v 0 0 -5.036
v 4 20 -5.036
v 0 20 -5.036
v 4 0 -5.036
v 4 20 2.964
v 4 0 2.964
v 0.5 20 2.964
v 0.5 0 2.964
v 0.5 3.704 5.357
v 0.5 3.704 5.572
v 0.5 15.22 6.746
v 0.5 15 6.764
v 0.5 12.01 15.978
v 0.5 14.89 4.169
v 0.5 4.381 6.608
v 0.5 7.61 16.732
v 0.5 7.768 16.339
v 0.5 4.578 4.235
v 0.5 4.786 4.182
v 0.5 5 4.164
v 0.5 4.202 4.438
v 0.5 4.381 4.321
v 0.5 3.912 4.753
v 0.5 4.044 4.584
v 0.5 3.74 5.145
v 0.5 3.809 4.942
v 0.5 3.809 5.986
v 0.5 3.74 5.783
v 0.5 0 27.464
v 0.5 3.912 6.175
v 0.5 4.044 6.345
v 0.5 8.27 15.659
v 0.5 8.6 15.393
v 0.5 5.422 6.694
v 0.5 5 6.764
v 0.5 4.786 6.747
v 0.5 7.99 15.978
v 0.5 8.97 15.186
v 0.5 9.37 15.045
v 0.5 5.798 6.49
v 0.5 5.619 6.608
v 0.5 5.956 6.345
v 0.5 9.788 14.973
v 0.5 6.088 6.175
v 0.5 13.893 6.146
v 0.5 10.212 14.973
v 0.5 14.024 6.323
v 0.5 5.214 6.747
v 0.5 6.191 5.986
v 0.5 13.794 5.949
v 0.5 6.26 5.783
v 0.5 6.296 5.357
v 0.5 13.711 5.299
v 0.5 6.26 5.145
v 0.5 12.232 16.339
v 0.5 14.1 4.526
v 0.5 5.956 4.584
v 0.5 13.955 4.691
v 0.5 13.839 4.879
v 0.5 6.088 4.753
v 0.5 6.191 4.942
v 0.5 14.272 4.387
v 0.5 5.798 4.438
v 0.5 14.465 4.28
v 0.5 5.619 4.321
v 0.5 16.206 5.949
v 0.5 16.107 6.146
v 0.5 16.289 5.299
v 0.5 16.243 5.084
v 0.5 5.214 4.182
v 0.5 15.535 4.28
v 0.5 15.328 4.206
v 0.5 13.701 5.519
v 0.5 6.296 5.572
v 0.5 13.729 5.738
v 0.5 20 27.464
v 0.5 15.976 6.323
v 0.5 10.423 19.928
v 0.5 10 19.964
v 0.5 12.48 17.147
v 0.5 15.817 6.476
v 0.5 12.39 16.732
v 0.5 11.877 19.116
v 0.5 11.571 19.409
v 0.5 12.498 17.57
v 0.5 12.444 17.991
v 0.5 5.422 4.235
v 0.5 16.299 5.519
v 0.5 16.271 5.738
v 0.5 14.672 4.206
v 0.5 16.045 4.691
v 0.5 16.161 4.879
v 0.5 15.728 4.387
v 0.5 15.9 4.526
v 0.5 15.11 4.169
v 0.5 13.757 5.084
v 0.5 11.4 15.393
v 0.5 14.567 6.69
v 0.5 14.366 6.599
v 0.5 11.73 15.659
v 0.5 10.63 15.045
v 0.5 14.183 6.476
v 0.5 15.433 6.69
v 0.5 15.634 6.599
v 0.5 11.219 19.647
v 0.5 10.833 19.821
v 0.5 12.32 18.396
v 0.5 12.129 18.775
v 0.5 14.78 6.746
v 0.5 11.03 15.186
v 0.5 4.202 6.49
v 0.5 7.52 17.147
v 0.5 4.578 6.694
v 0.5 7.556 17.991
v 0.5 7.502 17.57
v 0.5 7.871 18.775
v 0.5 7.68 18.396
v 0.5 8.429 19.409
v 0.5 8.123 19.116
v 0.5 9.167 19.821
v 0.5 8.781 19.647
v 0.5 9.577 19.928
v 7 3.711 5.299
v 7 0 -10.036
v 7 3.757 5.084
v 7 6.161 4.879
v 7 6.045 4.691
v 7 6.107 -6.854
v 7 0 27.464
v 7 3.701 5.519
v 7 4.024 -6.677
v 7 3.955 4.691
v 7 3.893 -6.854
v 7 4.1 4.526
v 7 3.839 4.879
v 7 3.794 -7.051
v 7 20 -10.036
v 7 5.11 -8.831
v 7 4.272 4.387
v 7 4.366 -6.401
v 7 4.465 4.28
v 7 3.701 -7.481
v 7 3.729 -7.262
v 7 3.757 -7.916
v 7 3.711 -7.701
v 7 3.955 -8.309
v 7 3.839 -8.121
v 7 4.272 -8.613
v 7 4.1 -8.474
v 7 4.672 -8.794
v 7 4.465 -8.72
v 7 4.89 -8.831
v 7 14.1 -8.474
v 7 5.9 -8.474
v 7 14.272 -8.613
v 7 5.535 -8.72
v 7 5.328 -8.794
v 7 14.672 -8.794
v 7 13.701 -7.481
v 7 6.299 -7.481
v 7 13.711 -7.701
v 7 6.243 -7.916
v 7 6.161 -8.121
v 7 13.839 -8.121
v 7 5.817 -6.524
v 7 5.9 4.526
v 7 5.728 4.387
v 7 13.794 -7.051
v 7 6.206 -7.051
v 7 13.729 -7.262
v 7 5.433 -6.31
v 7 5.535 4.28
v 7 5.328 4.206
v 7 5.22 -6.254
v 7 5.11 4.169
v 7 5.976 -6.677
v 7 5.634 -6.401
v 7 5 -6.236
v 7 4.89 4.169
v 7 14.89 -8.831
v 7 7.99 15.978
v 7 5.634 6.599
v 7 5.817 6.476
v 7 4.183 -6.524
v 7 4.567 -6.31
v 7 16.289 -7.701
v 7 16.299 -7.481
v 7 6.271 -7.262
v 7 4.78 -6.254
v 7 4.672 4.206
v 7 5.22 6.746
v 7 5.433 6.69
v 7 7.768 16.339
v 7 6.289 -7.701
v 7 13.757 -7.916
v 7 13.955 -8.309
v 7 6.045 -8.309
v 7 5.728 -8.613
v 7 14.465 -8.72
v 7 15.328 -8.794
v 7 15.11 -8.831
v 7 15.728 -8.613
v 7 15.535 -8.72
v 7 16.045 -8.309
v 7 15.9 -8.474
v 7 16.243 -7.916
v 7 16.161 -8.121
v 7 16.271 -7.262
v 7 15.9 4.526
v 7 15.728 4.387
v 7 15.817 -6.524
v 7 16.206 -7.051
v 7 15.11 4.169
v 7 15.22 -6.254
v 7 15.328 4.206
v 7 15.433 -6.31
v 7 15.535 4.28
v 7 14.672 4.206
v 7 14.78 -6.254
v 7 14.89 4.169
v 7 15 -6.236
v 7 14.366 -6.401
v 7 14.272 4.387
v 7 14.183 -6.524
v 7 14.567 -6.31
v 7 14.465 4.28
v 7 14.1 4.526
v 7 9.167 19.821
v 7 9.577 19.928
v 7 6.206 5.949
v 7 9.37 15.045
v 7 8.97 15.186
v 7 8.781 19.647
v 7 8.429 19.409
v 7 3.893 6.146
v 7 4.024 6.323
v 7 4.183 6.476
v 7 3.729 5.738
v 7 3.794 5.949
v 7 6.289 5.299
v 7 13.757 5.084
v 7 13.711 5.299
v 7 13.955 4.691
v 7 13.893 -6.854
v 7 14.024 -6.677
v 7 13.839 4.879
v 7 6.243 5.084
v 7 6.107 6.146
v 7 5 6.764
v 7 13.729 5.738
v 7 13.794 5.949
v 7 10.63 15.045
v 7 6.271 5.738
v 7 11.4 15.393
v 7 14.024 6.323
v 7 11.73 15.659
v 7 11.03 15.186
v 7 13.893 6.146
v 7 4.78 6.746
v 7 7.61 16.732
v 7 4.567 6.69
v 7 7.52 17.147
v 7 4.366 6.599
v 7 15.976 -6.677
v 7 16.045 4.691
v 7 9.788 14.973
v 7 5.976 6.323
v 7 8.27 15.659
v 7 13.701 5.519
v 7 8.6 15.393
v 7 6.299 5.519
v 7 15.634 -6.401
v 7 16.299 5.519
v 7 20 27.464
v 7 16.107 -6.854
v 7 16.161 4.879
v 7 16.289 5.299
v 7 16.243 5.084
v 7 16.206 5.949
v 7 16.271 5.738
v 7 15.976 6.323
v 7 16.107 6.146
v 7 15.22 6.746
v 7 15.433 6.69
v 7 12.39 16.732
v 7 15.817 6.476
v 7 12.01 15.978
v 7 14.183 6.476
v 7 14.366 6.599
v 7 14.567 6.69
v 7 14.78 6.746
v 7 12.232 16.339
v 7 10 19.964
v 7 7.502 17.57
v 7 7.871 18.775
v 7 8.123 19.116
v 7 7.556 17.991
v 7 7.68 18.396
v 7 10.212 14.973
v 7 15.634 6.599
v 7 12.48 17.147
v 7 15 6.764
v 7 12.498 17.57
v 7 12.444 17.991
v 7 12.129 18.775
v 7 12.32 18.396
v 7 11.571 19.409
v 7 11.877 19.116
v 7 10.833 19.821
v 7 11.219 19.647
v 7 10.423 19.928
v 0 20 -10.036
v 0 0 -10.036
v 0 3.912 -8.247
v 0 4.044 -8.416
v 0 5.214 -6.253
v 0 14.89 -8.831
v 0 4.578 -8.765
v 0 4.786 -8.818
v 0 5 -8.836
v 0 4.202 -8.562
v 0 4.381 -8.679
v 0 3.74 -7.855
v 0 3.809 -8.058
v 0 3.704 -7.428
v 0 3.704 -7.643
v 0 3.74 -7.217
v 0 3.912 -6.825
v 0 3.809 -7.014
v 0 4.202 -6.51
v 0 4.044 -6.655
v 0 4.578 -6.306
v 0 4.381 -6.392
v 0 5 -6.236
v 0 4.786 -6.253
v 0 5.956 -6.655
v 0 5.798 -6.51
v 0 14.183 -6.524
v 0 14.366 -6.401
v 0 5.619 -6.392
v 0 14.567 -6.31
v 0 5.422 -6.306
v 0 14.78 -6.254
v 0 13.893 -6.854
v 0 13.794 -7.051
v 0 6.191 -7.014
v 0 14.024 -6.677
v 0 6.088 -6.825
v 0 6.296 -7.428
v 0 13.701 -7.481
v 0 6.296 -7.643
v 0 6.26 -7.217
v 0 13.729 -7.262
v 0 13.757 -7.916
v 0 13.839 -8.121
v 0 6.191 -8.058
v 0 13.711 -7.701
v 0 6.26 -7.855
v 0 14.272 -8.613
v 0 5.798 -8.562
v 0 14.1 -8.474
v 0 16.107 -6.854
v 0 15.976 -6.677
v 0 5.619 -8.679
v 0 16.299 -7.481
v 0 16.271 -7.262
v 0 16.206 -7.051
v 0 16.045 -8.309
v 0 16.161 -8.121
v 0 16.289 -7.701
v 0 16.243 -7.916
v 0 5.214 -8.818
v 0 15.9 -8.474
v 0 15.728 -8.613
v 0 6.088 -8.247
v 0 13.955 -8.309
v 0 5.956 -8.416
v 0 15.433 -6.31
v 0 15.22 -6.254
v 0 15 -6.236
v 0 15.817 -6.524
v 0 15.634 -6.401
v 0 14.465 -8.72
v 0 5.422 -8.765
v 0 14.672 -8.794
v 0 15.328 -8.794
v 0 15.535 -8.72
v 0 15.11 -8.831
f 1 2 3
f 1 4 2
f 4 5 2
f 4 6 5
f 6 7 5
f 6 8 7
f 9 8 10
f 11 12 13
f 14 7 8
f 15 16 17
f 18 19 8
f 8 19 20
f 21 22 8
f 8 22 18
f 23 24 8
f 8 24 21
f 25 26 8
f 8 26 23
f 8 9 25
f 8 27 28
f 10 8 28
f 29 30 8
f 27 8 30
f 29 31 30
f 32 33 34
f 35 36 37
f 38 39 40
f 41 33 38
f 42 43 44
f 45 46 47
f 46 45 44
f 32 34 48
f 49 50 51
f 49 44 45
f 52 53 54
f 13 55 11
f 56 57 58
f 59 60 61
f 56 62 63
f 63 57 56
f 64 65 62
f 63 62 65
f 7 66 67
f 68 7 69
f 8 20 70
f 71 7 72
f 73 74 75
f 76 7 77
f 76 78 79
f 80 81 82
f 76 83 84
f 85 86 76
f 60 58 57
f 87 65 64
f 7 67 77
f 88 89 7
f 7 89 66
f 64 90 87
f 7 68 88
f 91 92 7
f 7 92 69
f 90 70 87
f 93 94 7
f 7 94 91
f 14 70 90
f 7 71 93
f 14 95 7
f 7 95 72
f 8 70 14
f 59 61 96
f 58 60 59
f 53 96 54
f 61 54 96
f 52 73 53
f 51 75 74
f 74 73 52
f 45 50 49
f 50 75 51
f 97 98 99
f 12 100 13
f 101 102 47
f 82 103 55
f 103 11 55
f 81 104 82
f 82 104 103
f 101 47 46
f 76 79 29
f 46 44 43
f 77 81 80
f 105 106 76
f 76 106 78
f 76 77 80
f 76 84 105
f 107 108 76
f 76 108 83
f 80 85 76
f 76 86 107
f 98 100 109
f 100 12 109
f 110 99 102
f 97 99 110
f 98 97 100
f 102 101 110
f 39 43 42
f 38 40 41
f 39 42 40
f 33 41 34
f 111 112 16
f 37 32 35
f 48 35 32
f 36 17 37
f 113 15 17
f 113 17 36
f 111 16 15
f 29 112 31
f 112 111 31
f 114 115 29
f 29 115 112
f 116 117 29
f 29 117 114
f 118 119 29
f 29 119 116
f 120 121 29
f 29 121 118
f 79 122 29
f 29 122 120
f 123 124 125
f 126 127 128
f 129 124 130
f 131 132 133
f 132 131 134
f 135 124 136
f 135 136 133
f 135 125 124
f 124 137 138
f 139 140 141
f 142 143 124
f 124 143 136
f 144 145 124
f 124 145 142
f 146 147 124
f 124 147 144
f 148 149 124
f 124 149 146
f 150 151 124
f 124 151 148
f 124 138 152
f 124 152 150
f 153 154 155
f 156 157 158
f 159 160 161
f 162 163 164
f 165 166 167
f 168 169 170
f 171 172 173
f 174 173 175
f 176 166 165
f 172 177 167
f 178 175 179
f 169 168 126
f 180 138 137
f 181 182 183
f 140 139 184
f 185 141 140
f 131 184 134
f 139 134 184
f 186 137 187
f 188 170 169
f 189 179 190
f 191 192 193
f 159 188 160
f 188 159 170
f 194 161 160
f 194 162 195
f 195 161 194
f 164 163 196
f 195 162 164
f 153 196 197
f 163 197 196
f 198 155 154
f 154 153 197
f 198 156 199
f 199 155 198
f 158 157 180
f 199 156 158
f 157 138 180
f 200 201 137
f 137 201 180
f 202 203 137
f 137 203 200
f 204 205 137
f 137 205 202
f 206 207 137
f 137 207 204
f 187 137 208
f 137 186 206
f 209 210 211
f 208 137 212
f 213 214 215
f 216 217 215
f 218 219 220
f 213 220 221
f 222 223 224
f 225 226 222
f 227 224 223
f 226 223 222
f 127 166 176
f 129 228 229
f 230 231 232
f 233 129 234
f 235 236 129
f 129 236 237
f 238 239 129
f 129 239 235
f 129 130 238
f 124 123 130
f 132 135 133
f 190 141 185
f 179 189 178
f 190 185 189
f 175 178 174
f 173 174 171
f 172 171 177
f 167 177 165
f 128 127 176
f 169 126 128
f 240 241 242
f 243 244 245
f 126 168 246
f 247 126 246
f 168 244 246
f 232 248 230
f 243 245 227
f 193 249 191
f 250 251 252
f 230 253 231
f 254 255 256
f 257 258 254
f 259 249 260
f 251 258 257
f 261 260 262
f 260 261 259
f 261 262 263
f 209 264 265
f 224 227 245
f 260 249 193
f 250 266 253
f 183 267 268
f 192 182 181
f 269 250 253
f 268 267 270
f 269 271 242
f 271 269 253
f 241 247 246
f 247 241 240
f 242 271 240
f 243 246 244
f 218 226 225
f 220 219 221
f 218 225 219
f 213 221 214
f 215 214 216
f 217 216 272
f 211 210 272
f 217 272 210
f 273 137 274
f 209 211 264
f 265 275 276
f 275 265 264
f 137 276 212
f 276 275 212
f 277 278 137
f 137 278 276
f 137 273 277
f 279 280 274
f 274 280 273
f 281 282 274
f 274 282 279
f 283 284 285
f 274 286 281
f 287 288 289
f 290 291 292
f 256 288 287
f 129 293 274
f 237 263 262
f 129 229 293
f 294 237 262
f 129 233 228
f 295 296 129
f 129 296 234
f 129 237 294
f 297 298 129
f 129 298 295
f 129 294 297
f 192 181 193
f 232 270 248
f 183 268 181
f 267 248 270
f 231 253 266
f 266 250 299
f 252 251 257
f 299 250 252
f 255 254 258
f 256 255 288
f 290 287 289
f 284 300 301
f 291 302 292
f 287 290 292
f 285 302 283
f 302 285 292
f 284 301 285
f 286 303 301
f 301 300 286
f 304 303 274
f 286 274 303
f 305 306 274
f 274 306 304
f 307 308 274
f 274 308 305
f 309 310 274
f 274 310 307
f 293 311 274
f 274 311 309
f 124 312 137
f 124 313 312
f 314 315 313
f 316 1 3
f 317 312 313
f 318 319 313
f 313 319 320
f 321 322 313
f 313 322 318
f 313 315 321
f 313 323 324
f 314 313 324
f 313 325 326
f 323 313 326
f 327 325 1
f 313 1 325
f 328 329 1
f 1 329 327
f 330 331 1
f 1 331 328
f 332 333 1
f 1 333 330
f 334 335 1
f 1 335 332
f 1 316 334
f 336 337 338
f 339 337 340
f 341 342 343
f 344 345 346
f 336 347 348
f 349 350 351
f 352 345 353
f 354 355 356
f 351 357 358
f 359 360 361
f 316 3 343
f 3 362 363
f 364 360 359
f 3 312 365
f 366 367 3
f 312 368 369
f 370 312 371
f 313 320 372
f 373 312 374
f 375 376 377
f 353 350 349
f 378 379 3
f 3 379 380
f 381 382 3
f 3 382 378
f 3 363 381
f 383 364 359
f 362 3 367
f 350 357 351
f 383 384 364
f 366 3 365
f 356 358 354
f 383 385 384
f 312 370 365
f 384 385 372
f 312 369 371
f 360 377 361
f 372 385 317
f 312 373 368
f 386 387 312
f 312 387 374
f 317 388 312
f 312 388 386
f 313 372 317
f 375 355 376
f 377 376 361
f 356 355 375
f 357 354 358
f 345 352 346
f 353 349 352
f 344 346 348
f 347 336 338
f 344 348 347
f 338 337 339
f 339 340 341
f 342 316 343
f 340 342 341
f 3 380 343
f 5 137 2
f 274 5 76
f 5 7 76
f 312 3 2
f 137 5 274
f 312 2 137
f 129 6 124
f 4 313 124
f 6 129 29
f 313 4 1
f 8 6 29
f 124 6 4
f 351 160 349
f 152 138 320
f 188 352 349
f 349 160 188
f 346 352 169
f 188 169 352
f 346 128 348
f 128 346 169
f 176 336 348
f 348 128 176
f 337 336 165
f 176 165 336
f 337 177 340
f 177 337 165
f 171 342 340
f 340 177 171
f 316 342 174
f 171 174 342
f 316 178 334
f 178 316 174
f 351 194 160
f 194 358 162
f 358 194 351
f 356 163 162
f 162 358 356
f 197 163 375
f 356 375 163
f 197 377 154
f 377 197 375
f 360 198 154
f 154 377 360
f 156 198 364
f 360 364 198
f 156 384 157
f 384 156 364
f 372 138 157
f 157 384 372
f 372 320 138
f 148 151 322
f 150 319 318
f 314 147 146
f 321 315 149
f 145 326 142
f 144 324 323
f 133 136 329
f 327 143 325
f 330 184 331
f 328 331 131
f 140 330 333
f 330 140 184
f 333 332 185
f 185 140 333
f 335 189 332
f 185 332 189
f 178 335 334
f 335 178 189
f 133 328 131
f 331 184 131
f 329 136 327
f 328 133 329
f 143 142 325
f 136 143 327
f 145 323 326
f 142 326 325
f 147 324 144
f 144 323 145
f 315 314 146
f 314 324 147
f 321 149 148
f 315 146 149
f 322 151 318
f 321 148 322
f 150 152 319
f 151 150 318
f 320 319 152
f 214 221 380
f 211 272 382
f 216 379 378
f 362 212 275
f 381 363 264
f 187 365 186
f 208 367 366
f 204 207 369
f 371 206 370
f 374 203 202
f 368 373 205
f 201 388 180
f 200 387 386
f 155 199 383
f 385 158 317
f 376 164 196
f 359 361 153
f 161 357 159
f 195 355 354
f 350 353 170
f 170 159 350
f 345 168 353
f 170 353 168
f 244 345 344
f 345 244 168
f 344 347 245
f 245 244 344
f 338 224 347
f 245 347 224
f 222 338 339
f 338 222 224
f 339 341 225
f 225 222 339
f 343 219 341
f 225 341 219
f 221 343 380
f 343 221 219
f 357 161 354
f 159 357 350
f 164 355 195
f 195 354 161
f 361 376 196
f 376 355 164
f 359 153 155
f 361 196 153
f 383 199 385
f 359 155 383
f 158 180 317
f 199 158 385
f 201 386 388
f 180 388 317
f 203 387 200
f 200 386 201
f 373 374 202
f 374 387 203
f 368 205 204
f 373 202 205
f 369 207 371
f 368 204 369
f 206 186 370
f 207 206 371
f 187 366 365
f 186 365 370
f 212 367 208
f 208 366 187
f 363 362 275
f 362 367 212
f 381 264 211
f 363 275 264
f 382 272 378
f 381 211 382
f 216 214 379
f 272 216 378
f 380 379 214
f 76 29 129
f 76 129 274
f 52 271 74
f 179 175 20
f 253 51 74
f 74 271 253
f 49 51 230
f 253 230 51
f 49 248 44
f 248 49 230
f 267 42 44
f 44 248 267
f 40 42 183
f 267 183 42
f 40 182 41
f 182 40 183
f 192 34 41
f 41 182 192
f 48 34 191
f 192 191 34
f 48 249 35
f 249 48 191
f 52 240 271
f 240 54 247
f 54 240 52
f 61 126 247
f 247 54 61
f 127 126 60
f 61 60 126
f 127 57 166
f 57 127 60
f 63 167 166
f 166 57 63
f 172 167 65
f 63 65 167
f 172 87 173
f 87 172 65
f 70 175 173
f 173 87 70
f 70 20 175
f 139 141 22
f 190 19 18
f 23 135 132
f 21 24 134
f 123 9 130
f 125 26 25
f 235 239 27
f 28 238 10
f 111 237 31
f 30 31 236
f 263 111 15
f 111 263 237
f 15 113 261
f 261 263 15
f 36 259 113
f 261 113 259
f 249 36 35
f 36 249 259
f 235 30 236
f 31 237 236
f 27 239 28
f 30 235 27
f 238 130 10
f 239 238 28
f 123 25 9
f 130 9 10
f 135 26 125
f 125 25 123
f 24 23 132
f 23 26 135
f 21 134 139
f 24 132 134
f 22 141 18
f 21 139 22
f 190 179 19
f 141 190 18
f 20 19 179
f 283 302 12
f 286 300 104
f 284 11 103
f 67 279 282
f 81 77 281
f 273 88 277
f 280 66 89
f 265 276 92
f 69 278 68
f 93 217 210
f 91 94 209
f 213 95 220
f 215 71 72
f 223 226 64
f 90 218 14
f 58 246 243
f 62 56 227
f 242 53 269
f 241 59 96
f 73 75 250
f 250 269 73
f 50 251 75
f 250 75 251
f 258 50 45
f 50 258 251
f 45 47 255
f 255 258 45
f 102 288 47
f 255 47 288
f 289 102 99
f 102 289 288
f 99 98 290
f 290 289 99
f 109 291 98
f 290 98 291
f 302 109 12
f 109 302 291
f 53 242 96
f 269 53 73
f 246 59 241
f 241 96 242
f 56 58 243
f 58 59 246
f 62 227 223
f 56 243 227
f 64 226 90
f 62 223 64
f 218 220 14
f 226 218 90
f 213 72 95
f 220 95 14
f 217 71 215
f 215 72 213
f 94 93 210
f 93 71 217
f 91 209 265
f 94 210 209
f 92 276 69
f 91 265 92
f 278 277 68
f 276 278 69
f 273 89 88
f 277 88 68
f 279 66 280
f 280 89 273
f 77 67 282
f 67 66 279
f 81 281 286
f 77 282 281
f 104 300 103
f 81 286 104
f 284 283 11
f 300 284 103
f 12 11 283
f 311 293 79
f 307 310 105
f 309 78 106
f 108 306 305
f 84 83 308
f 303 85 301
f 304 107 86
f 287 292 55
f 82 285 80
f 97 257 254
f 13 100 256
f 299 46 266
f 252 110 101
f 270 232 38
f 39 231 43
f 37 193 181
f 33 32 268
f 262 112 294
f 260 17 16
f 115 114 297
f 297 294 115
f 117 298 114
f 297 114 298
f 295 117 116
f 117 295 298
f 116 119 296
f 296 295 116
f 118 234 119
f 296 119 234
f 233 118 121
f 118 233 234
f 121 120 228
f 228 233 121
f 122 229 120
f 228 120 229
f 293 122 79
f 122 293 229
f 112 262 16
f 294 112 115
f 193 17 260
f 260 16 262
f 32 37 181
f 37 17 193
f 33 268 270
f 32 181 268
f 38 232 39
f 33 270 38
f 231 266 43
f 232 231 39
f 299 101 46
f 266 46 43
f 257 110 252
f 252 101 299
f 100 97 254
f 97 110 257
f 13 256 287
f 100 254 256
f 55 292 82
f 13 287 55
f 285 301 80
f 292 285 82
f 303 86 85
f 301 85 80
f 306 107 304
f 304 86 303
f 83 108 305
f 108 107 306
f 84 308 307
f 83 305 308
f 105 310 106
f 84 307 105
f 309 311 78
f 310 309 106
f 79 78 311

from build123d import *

# Parameters (mm, degrees)
BOSS_EXTRUDE1_DEPTH = 20
CUT_EXTRUDE1_REACH  = 25.446
SKETCH2_R           = 1.3
SKETCH4_W           = 6.5
SKETCH4_H           = 21.5
BOSS_EXTRUDE2_DEPTH = 20
CUT_EXTRUDE2_REACH  = 36.591
SKETCH6_R           = 1.3
CUT_EXTRUDE3_REACH  = 36.591
SKETCH7_R           = 2.5


with BuildPart() as part:
    # Sketch1 → Boss-Extrude1 (new body)
    with BuildSketch(Plane(origin=(0, 0, 0), x_dir=(-1, 0, 0), z_dir=(0, 1, 0))):
        Polygon((0, -5.035714286), (0, -10.035714286), (-7, -10.035714286), (-7, 5.964285714), (-0.5, 5.964285714), (-0.5, 2.964285714), (-4, 2.964285714), (-4, -5.035714286), align=None)
    extrude(amount=BOSS_EXTRUDE1_DEPTH)

    # Sketch2 → Cut-Extrude1 (cut, up to next)
    with BuildSketch(Plane(origin=(0, 0, 0), x_dir=(0, -1, 0), z_dir=(-1, 0, 0)), mode=Mode.PRIVATE) as cut_extrude1_sk1:
        with Locations(Location((-15, -7.535714286, 0), (0, 0, 90))):
            Circle(SKETCH2_R)
    cut_extrude1_tool1 = extrude(cut_extrude1_sk1.sketch, amount=-CUT_EXTRUDE1_REACH, mode=Mode.PRIVATE) & part.part
    # Sketch2 → Cut-Extrude1 (cut, up to next)
    with BuildSketch(Plane(origin=(0, 0, 0), x_dir=(0, -1, 0), z_dir=(-1, 0, 0)), mode=Mode.PRIVATE) as cut_extrude1_sk2:
        with Locations(Location((-5, -7.535714286, 0), (0, 0, 90))):
            Circle(SKETCH2_R)
    cut_extrude1_tool2 = extrude(cut_extrude1_sk2.sketch, amount=-CUT_EXTRUDE1_REACH, mode=Mode.PRIVATE) & part.part
    add(cut_extrude1_tool1.solids().sort_by_distance((0, 15, -7.535714))[0], mode=Mode.SUBTRACT)
    add(cut_extrude1_tool2.solids().sort_by_distance((0, 5, -7.535714))[0], mode=Mode.SUBTRACT)

    # Sketch4 → Boss-Extrude2 (add)
    with BuildSketch(Plane(origin=(0, 20, 0), x_dir=(-1, 0, 0), z_dir=(0, 1, 0))):
        with Locations((-3.75, 16.714285714)):
            Rectangle(SKETCH4_W, SKETCH4_H)
    extrude(amount=-BOSS_EXTRUDE2_DEPTH)

    # Sketch6 → Cut-Extrude2 (cut, up to next)
    with BuildSketch(Plane(origin=(0.5, 0, 0), x_dir=(0, -1, 0), z_dir=(-1, 0, 0)), mode=Mode.PRIVATE) as cut_extrude2_sk1:
        with Locations(Location((-15, 5.464285714, 0), (0, 0, 90))):
            Circle(SKETCH6_R)
    cut_extrude2_tool1 = extrude(cut_extrude2_sk1.sketch, amount=-CUT_EXTRUDE2_REACH, mode=Mode.PRIVATE) & part.part
    # Sketch6 → Cut-Extrude2 (cut, up to next)
    with BuildSketch(Plane(origin=(0.5, 0, 0), x_dir=(0, -1, 0), z_dir=(-1, 0, 0)), mode=Mode.PRIVATE) as cut_extrude2_sk2:
        with Locations(Location((-5, 5.464285714, 0), (0, 0, 90))):
            Circle(SKETCH6_R)
    cut_extrude2_tool2 = extrude(cut_extrude2_sk2.sketch, amount=-CUT_EXTRUDE2_REACH, mode=Mode.PRIVATE) & part.part
    add(cut_extrude2_tool1.solids().sort_by_distance((0.5, 15, 5.464286))[0], mode=Mode.SUBTRACT)
    add(cut_extrude2_tool2.solids().sort_by_distance((0.5, 5, 5.464286))[0], mode=Mode.SUBTRACT)

    # Sketch7 → Cut-Extrude3 (cut, up to next)
    with BuildSketch(Plane(origin=(0.5, 0, 0), x_dir=(0, -1, 0), z_dir=(-1, 0, 0)), mode=Mode.PRIVATE) as cut_extrude3_sk1:
        with Locations(Location((-10, 17.464285714, 0), (0, 0, 90))):
            Circle(SKETCH7_R)
    cut_extrude3_tool1 = extrude(cut_extrude3_sk1.sketch, amount=-CUT_EXTRUDE3_REACH, mode=Mode.PRIVATE) & part.part
    add(cut_extrude3_tool1.solids().sort_by_distance((0.5, 10, 17.464286))[0], mode=Mode.SUBTRACT)


solid = part.part
